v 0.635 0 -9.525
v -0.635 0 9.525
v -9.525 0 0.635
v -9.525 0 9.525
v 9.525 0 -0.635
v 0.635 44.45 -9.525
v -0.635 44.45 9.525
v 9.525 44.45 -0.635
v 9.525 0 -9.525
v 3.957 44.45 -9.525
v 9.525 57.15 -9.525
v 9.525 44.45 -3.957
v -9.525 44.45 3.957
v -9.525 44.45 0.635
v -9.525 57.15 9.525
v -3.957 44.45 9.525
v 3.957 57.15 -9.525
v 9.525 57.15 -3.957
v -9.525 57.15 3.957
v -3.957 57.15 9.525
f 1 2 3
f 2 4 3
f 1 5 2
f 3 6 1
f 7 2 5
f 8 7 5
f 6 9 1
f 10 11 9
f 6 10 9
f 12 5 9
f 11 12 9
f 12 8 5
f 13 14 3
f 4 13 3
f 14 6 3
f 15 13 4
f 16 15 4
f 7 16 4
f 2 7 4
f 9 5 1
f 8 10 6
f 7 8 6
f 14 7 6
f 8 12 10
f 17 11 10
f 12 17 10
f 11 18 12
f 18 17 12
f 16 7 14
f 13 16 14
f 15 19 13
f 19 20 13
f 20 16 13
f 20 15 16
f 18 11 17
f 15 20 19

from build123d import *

# Parameters (mm, degrees)
SKETCH1_W           = 19.05
SKETCH1_H           = 19.05
BOSS_EXTRUDE1_DEPTH = 44.45
BOSS_EXTRUDE2_DEPTH = 12.7
CUT_EXTRUDE1_DEPTH  = 45.45


with BuildPart() as part:
    # Sketch1 → Boss-Extrude1 (new body)
    with BuildSketch(Plane(origin=(0, 0, 0), x_dir=(1, 0, 0), z_dir=(0, 1, 0))):
        Rectangle(SKETCH1_W, SKETCH1_H)
    extrude(amount=BOSS_EXTRUDE1_DEPTH)

    # Sketch2 → Boss-Extrude2 (add)
    with BuildSketch(Plane(origin=(0, 44.45, 0), x_dir=(1, 0, 0), z_dir=(0, 1, 0))):
        Polygon((-9.525, -9.525), (-3.957241205, -9.525), (-9.525, -3.957241205), align=None)
    boss_extrude2 = extrude(amount=BOSS_EXTRUDE2_DEPTH)

    # Mirror1: Boss-Extrude2 across plane
    add(boss_extrude2.mirror(Plane(origin=(0, 0, 0), x_dir=(0.707106781, 0, 0.707106781), z_dir=(-0.707106781, 0, 0.707106781))))

    # Sketch3 → Cut-Extrude1 (cut, through all)
    with BuildSketch(Plane(origin=(0, 44.45, 0), x_dir=(1, 0, 0), z_dir=(0, 1, 0))):
        Polygon((9.525, -9.525), (-0.635, -9.525), (9.525, 0.635), align=None)
    cut_extrude1 = extrude(amount=-CUT_EXTRUDE1_DEPTH, mode=Mode.SUBTRACT)

    # Mirror2: Cut-Extrude1 across plane
    add(cut_extrude1.mirror(Plane(origin=(0, 0, 0), x_dir=(-0.707106781, 0, 0.707106781), z_dir=(-0.707106781, 0, -0.707106781))), mode=Mode.SUBTRACT)


solid = part.part
